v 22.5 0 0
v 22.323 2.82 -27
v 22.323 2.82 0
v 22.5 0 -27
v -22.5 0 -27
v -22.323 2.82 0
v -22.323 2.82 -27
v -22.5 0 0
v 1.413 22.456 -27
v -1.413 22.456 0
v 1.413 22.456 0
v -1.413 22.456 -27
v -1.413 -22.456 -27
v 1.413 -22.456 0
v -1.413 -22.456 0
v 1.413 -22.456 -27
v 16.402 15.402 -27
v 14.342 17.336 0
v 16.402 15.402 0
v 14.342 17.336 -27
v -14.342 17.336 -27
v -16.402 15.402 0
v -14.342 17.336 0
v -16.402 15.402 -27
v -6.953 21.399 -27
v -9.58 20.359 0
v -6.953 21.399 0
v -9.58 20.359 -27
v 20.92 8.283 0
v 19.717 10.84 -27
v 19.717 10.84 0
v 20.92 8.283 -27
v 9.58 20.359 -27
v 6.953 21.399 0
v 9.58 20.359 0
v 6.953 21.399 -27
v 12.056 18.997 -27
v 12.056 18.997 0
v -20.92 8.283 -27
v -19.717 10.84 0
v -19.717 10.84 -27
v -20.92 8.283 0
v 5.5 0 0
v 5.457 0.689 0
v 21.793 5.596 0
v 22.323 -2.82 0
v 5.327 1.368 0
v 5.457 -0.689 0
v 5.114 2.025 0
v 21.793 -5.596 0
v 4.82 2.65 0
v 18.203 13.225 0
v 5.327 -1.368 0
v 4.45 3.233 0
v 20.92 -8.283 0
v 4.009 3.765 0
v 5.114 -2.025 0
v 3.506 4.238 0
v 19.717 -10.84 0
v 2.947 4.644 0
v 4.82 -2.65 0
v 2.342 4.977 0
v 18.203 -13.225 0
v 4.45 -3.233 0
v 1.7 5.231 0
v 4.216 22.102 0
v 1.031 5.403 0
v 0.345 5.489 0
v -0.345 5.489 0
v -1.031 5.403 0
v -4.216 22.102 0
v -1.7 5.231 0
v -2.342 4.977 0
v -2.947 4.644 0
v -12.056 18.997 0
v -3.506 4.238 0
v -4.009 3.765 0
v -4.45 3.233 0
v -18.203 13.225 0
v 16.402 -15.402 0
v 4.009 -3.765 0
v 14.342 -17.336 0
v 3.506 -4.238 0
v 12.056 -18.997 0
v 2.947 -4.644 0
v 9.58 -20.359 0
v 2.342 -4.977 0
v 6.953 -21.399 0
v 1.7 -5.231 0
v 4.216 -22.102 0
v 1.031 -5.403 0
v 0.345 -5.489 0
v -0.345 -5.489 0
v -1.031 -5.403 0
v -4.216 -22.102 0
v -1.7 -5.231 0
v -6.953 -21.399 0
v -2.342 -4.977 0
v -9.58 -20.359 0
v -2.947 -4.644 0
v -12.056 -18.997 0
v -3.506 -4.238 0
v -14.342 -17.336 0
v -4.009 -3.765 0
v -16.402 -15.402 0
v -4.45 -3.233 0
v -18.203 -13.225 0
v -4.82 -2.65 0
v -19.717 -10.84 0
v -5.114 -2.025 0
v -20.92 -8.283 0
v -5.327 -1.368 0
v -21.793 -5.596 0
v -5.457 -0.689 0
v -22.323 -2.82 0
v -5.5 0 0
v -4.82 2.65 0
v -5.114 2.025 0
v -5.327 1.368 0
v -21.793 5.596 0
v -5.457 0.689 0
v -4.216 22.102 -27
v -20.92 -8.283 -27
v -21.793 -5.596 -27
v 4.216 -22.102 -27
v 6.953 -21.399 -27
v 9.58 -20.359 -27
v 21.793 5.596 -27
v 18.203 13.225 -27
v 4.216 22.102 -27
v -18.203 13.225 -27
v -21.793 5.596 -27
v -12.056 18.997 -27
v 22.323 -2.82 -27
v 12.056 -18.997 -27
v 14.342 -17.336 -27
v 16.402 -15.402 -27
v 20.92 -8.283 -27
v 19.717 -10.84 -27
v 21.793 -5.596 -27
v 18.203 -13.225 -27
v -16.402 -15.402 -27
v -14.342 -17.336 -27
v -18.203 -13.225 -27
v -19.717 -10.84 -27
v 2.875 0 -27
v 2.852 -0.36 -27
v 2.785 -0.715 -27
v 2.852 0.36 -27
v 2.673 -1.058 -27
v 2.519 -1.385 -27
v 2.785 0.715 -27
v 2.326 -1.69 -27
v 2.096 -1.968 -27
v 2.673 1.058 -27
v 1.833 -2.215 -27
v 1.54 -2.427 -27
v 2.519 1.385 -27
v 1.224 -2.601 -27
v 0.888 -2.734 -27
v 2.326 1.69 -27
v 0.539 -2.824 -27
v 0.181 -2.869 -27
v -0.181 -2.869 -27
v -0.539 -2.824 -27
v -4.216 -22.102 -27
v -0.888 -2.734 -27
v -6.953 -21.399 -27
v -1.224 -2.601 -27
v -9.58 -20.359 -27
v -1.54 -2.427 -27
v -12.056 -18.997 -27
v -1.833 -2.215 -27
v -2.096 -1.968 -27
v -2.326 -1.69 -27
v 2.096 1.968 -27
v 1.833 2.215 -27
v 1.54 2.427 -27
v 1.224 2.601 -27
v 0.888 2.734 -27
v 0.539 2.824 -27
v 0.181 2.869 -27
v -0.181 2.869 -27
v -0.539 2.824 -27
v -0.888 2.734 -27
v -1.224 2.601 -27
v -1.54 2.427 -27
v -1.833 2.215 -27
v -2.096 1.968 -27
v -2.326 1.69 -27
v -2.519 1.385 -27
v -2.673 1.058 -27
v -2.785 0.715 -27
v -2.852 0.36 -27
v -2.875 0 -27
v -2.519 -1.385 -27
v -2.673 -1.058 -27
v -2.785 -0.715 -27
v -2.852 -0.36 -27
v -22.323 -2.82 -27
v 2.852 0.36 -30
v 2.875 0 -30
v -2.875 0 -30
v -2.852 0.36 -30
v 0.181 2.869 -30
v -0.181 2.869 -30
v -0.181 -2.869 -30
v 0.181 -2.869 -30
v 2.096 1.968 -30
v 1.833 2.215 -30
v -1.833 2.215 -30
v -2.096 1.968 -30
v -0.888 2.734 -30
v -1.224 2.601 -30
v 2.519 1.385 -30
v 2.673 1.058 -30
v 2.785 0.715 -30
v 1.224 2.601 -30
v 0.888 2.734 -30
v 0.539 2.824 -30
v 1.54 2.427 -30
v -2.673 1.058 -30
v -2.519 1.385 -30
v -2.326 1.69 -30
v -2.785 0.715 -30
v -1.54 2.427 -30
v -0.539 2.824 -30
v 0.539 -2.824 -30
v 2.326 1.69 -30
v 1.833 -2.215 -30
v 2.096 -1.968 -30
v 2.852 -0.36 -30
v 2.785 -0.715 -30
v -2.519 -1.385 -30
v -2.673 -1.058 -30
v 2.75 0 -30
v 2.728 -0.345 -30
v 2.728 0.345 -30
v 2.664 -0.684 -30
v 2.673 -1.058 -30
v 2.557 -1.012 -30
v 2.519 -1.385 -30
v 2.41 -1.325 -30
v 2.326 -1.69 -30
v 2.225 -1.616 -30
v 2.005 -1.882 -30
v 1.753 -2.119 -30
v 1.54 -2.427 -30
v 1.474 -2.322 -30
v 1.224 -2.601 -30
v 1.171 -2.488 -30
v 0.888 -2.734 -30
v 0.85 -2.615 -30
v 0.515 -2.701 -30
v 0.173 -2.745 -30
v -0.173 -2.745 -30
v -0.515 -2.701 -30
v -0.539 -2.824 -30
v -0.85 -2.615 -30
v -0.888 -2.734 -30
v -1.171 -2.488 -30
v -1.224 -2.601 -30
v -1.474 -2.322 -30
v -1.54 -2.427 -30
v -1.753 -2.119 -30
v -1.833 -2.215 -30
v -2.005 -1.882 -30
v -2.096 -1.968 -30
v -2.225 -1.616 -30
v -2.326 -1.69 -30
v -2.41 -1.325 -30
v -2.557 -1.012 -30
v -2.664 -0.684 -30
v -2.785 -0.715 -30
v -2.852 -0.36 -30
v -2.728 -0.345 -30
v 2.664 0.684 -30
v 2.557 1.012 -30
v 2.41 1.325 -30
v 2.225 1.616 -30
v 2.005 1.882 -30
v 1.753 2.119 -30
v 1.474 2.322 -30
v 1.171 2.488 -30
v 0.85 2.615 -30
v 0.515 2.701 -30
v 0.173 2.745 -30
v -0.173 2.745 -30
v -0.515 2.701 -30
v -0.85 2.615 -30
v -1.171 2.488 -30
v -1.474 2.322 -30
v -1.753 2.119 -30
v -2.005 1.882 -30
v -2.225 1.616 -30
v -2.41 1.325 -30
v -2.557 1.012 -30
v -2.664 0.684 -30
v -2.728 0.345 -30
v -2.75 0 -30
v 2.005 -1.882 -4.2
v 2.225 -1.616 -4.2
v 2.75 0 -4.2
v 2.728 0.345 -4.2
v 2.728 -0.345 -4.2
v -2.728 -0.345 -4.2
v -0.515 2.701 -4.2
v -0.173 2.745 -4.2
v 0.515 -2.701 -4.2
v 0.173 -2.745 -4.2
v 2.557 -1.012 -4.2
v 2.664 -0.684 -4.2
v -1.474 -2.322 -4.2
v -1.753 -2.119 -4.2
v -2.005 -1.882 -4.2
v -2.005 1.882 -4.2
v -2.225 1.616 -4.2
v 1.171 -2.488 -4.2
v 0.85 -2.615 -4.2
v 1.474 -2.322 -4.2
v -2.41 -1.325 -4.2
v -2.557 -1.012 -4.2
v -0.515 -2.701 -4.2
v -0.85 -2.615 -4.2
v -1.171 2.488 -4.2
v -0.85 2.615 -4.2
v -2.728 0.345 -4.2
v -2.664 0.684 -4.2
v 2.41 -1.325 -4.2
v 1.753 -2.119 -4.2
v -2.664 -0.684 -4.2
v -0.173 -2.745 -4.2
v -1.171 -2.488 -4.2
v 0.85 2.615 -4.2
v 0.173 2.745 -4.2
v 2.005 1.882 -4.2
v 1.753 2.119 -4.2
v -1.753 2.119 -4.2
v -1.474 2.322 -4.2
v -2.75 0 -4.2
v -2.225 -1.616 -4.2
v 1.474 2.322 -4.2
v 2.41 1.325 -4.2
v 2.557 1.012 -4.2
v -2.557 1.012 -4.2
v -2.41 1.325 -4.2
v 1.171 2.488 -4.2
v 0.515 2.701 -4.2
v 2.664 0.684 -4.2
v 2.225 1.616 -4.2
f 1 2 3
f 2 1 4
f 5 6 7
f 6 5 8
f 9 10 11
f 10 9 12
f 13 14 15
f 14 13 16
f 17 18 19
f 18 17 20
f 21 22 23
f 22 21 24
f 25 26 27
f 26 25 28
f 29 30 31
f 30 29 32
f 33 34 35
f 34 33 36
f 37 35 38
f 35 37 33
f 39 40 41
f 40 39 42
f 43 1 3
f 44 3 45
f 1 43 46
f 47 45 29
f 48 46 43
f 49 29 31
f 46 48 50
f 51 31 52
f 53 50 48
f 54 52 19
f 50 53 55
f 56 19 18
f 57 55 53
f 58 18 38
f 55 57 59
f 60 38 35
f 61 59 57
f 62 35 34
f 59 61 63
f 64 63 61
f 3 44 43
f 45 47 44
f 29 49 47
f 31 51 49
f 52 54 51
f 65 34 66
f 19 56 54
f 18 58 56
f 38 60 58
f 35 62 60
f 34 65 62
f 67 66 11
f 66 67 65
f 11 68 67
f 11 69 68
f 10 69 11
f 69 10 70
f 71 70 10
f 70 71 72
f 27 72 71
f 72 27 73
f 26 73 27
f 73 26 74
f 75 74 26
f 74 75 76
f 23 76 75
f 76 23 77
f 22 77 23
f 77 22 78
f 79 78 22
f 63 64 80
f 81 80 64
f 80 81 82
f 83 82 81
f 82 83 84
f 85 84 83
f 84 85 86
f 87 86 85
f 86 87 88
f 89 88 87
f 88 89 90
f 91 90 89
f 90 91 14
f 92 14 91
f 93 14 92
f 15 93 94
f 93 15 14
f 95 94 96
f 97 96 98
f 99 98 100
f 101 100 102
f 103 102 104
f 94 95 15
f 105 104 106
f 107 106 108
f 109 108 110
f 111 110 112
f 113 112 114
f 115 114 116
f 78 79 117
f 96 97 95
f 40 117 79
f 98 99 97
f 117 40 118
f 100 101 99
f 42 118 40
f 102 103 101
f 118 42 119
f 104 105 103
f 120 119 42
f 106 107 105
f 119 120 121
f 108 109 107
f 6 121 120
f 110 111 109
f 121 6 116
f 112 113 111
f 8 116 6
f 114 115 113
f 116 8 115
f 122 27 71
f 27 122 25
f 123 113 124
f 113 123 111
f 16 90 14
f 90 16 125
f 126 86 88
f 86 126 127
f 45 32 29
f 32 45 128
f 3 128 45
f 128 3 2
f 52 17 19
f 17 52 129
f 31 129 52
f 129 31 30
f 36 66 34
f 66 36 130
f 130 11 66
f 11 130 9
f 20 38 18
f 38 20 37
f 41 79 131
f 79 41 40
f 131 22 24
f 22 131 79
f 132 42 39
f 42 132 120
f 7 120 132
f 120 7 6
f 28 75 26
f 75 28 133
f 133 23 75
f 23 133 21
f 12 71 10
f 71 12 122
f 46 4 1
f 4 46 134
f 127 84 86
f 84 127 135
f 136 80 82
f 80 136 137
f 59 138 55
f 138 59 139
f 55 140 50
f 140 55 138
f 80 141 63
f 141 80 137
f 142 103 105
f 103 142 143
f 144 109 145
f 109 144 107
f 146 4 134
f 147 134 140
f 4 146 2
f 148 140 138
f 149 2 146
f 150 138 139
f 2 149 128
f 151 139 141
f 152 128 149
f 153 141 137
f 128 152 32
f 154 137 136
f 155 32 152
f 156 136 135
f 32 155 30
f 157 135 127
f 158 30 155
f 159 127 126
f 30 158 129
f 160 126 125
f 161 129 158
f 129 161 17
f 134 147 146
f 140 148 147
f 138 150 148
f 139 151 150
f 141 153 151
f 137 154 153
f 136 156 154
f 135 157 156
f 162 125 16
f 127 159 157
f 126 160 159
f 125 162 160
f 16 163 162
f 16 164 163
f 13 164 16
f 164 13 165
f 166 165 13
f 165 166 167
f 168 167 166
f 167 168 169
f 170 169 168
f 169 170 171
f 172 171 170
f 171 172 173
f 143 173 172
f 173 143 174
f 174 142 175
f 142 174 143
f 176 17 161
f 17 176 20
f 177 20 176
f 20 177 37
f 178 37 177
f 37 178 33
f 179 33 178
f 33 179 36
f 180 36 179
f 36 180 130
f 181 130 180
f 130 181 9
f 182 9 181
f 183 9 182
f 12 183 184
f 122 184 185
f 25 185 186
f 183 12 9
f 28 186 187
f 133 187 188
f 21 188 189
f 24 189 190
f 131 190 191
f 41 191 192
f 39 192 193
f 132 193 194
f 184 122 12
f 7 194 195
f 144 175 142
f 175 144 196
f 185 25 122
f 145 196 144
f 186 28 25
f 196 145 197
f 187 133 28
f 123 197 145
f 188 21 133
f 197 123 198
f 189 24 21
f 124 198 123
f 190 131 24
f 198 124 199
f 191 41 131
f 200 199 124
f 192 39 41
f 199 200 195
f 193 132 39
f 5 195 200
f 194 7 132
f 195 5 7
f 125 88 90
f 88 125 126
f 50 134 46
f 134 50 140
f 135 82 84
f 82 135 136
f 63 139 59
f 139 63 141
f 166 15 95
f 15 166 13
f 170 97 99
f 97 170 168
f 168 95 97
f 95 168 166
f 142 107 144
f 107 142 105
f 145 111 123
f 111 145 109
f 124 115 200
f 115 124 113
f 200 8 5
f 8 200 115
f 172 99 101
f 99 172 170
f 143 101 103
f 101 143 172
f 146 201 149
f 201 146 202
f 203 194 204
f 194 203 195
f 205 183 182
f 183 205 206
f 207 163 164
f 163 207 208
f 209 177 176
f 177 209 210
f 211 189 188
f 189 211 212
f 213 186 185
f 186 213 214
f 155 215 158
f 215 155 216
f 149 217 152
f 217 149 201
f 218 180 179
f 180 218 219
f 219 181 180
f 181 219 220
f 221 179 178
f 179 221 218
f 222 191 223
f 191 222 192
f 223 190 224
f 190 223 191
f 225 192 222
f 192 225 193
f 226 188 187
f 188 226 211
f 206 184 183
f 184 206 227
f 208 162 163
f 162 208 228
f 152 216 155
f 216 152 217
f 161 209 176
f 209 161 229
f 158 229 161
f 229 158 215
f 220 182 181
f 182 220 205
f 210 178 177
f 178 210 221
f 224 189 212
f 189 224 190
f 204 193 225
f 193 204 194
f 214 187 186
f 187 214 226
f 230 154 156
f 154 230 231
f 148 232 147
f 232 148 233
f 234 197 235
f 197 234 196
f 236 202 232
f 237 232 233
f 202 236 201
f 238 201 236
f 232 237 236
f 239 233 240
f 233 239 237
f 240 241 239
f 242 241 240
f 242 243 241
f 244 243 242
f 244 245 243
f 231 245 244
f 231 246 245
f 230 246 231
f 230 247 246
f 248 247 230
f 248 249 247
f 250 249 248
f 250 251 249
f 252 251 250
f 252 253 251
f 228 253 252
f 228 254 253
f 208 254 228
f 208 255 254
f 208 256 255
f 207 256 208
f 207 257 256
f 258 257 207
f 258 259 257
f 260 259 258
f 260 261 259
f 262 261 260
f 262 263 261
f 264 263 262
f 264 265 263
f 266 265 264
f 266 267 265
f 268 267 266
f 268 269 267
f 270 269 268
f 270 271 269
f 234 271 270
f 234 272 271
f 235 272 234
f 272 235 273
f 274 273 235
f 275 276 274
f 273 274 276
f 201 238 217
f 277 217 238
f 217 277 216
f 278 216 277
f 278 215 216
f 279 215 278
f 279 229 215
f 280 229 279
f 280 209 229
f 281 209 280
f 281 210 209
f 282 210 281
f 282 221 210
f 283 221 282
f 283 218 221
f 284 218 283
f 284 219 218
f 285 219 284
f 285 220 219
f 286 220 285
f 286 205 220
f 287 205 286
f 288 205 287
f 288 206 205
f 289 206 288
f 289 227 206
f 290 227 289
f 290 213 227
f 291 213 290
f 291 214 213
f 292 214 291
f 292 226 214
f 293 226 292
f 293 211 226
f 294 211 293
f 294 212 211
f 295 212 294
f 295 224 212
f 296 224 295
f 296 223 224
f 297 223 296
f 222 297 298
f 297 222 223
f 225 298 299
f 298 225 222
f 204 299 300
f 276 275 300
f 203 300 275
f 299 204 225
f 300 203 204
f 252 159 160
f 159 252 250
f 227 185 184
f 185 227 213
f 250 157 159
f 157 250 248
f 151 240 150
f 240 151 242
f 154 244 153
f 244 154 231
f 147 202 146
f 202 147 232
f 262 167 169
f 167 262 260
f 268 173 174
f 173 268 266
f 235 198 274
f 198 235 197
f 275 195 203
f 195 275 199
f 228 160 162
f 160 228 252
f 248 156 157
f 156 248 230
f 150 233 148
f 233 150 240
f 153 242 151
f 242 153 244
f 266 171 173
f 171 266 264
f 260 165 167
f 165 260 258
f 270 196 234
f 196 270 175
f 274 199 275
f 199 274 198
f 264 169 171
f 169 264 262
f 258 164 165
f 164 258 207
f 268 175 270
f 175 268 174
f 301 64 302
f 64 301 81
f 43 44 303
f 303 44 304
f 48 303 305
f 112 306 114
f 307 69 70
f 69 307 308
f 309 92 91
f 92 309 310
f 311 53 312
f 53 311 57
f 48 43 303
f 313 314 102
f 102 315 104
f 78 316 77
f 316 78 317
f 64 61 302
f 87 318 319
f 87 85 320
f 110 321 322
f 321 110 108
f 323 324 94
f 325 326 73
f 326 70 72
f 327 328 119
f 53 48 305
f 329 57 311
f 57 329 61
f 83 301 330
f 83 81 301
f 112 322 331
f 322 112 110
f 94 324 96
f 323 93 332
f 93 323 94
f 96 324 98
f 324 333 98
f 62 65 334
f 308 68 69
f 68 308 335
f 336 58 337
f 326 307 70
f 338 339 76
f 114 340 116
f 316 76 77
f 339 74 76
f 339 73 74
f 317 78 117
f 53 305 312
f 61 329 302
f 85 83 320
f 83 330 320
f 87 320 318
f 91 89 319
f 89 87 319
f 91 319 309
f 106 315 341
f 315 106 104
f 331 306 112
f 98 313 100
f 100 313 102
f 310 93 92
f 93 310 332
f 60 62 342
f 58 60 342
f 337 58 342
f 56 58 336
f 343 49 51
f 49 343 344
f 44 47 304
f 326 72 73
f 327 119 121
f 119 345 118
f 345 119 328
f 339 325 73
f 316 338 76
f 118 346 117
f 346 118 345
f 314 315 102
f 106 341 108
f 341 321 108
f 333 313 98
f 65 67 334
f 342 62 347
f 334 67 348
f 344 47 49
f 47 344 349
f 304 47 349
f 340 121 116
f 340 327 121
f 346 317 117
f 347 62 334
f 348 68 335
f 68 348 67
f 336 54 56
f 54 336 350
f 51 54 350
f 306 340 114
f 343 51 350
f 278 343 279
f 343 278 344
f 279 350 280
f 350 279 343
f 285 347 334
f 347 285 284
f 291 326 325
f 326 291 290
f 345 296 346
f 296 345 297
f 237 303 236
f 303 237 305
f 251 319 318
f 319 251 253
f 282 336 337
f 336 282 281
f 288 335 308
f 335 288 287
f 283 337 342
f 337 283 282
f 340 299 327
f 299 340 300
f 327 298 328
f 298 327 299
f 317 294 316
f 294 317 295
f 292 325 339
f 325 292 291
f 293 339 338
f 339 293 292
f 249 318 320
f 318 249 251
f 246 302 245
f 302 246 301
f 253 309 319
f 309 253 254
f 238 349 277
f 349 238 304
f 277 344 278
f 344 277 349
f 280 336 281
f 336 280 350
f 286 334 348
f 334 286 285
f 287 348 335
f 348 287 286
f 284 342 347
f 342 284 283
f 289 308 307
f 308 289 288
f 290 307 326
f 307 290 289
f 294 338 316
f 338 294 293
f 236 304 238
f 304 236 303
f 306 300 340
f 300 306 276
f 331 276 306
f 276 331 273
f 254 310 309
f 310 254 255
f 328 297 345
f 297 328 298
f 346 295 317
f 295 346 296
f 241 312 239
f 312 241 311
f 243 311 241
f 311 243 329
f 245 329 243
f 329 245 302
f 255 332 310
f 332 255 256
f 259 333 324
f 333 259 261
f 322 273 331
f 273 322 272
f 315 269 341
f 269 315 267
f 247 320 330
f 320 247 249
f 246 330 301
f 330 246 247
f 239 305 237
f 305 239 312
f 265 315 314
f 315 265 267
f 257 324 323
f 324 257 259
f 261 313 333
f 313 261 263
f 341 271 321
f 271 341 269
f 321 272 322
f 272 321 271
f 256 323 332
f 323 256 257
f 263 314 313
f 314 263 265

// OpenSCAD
$fn = 50;

difference() {
	union() {
		translate(v = [0, 0, -27.0]) {
			cylinder(h = 27, r = 22.5);
		}
		#translate(v = [0, 0, -30.0]) {
			cylinder(h = 30, r = 2.875);
		}
	}
	union() {
		translate(v = [0, 0, 0]) {
			rotate(a = [0, 0, 0]) {
				difference() {
					union() {
						translate(v = [0, 0, -30.0]) {
							cylinder(h = 30, r = 2.25);
						}
						translate(v = [0, 0, -4.2]) {
							cylinder(h = 4.2, r1 = 2.75, r2 = 5.5);
						}
						translate(v = [0, 0, -30.0]) {
							cylinder(h = 30, r = 2.75);
						}
						translate(v = [0, 0, -30.0]) {
							cylinder(h = 30, r = 2.25);
						}
					}
					union();
				}
			}
		}
	}
}
